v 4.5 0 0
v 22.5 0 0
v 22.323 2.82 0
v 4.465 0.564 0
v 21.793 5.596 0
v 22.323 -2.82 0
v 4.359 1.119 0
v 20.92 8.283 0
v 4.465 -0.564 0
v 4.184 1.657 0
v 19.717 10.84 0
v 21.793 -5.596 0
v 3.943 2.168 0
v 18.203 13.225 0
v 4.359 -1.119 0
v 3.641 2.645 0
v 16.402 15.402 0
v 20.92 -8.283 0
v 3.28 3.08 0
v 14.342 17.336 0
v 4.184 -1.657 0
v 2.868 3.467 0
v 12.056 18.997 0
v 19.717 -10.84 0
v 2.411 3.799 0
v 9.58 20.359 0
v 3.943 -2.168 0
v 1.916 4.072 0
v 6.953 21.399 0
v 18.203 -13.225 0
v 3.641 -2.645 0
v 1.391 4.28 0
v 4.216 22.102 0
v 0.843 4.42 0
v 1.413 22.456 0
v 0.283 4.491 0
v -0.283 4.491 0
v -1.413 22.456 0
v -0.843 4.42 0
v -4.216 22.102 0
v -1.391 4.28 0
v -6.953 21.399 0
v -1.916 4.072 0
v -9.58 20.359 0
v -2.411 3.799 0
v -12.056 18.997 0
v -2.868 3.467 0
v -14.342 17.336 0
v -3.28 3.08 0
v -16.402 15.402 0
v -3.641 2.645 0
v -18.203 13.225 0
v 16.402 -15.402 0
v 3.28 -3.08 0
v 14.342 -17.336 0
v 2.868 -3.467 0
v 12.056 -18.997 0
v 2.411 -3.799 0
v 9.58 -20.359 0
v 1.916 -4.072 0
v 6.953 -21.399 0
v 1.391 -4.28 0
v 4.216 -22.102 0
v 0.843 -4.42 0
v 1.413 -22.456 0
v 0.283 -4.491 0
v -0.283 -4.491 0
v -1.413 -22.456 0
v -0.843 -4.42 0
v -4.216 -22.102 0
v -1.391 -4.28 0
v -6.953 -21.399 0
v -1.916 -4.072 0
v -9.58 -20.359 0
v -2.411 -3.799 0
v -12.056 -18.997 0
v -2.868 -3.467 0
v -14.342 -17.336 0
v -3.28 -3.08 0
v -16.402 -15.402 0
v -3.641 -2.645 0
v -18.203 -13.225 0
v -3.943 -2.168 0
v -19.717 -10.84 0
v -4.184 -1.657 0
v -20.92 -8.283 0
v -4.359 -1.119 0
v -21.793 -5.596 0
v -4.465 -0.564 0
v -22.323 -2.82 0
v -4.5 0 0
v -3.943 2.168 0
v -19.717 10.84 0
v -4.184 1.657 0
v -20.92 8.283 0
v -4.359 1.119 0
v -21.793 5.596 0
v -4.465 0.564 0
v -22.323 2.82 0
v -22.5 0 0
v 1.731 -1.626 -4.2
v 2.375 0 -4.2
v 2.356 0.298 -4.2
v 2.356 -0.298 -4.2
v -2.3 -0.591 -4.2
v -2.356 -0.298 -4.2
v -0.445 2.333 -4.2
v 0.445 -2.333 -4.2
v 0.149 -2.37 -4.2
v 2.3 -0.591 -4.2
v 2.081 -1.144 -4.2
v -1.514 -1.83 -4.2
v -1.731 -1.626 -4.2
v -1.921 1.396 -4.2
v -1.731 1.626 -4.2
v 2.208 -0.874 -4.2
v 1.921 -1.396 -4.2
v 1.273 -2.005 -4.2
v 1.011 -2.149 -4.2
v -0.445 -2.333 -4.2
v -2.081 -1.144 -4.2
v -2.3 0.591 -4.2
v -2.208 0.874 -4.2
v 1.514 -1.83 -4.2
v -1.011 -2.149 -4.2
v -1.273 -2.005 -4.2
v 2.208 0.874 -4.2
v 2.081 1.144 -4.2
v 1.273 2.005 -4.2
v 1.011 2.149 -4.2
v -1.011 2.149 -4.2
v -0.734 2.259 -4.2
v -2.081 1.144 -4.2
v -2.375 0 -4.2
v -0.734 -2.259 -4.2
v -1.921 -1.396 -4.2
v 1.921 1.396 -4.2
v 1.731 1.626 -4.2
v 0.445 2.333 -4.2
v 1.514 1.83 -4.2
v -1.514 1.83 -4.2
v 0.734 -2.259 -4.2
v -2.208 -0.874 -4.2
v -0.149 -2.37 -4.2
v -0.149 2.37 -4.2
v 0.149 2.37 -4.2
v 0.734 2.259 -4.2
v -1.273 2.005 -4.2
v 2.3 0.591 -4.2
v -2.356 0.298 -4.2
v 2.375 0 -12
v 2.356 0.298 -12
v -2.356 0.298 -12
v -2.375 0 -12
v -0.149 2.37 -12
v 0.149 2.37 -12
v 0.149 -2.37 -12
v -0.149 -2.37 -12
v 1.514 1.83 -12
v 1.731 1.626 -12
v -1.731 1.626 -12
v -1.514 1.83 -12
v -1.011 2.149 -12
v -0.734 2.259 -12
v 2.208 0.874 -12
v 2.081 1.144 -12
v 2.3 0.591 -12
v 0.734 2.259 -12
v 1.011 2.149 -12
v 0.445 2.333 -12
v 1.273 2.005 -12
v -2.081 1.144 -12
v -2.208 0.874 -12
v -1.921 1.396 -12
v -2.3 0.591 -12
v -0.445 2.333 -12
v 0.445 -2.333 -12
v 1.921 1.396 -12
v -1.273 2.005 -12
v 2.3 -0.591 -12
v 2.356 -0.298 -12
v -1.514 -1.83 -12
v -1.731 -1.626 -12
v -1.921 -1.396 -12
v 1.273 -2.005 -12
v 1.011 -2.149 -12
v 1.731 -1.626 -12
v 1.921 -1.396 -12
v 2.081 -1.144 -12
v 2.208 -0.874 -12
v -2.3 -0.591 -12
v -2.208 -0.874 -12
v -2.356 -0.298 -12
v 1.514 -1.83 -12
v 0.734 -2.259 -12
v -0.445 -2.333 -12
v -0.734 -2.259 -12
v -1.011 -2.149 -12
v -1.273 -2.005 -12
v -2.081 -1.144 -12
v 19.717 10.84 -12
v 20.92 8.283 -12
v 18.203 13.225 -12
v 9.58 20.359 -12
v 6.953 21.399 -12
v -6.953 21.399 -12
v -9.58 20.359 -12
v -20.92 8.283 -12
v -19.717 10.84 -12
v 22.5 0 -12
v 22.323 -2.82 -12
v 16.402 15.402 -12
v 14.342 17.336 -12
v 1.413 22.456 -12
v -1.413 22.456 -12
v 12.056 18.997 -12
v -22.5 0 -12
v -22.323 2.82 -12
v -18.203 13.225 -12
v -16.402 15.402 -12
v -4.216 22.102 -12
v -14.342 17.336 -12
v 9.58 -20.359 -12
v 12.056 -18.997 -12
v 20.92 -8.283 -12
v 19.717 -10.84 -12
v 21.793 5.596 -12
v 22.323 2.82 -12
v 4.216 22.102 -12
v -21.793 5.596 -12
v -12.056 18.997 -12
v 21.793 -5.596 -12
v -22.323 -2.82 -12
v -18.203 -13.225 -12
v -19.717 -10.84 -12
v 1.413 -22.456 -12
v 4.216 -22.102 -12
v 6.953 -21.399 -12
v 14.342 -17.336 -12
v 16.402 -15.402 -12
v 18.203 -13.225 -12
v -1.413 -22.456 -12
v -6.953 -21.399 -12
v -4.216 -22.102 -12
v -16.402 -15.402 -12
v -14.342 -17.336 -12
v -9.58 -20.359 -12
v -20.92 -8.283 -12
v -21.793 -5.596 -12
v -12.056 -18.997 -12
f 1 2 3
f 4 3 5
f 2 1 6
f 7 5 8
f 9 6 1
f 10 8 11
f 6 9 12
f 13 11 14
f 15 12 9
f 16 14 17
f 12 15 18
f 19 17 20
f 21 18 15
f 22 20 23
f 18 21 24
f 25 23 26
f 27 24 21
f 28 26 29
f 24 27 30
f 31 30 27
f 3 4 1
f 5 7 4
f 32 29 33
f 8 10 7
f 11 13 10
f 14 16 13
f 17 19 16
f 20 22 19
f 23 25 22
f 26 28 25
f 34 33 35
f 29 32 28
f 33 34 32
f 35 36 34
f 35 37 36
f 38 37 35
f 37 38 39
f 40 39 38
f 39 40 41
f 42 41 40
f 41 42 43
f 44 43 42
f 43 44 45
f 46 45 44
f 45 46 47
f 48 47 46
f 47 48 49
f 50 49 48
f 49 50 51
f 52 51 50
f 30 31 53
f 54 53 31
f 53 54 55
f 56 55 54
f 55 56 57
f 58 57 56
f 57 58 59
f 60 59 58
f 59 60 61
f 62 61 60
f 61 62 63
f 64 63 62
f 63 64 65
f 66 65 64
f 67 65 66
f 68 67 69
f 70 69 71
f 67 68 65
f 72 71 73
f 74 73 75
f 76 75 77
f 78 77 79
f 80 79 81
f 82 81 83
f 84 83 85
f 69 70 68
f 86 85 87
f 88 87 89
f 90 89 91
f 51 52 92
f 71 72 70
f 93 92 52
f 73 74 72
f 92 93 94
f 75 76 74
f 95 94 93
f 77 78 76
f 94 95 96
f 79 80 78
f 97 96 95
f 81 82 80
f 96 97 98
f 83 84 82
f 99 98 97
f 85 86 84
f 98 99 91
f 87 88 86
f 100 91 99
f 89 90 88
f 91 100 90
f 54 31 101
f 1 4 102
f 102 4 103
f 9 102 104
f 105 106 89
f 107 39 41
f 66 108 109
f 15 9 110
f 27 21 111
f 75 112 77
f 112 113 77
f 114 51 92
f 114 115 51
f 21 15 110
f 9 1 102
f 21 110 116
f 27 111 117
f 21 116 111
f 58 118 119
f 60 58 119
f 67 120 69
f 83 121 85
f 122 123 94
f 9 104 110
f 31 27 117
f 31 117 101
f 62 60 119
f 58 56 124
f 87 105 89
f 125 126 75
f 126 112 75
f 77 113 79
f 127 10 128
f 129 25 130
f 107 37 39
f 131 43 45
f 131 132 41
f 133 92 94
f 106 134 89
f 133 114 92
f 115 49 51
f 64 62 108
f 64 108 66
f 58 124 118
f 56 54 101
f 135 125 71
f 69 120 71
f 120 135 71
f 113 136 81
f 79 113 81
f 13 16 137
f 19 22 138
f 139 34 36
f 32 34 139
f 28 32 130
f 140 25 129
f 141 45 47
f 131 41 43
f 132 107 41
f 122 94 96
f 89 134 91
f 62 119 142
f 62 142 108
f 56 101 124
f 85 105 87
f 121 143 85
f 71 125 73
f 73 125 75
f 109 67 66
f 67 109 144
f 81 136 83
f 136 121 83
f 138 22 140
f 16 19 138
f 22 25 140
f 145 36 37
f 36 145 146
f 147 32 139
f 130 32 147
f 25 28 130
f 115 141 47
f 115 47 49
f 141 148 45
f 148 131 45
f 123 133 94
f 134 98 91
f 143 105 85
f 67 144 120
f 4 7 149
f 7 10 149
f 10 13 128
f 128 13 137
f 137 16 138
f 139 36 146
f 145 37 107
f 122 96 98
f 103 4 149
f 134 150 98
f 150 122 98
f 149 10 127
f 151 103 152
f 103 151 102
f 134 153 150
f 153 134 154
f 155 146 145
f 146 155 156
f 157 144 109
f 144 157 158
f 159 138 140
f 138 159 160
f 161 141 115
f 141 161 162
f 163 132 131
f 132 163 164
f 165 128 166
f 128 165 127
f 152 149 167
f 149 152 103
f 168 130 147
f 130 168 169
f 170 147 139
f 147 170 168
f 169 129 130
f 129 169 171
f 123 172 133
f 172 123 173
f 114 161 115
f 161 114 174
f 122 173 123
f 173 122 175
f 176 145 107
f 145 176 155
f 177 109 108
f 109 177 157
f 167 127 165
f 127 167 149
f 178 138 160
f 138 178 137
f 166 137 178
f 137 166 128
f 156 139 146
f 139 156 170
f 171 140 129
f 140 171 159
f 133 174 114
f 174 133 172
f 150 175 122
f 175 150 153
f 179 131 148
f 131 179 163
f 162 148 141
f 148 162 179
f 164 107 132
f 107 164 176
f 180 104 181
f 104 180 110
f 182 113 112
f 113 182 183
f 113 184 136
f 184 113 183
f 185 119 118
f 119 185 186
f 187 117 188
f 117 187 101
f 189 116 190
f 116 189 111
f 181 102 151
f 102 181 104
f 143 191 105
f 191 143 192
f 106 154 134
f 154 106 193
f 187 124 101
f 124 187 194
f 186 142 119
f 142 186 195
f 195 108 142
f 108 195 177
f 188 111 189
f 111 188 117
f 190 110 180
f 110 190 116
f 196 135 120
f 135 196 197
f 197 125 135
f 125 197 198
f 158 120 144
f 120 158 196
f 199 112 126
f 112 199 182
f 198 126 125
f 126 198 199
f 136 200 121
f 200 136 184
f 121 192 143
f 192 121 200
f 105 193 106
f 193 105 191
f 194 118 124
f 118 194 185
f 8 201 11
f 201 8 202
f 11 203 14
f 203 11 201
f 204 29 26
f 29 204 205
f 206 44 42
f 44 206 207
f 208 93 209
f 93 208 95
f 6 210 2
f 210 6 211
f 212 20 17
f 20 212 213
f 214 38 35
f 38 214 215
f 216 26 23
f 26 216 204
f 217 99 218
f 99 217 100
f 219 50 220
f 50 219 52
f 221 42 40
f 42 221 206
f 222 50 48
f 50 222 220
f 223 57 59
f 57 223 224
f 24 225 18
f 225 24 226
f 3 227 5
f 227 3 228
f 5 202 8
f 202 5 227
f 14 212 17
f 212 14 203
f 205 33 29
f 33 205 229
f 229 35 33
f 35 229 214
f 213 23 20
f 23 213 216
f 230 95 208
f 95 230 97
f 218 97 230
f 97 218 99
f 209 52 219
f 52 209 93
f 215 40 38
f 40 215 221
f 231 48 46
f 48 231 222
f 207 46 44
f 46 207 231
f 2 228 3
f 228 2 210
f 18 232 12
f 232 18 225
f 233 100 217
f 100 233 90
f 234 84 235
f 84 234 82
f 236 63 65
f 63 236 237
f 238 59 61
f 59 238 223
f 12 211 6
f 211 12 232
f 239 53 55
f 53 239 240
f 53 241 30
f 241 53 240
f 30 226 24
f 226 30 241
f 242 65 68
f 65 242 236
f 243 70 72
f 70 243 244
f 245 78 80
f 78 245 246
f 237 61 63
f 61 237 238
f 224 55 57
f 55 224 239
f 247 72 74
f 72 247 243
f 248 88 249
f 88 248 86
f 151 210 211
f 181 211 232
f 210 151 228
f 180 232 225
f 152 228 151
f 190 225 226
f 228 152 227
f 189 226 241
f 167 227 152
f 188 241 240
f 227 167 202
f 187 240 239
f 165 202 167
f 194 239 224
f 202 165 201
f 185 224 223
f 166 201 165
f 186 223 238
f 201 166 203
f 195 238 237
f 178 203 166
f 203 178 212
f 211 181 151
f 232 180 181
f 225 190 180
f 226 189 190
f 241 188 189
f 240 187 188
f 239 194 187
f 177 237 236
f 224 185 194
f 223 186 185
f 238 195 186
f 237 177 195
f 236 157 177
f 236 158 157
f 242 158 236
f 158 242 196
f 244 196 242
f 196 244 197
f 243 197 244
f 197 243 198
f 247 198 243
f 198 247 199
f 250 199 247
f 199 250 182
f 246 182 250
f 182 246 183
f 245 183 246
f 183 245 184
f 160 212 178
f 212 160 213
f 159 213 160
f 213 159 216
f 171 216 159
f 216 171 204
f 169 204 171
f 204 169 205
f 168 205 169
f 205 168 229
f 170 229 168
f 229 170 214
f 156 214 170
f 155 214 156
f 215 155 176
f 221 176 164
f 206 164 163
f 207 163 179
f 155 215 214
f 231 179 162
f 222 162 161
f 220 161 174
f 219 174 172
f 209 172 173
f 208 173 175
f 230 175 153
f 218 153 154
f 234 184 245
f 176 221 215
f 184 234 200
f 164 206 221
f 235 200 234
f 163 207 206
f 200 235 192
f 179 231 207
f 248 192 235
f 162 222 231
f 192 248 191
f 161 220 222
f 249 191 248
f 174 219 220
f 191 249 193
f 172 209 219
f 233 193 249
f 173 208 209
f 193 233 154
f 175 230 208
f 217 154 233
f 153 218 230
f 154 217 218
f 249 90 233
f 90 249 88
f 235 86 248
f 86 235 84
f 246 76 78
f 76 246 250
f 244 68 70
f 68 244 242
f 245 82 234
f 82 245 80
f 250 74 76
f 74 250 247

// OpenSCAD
$fn = 50;


difference() {
	union() {
		translate(v = [0, 0, -12.0000000000]) {
			cylinder(h = 12, r = 22.5000000000);
		}
	}
	union() {
		translate(v = [0, 0, 0]) {
			rotate(a = [0, 0, 0]) {
				difference() {
					union() {
						translate(v = [0, 0, -15.0000000000]) {
							cylinder(h = 15, r = 2.2500000000);
						}
						translate(v = [0, 0, -4.2000000000]) {
							cylinder(h = 4.2000000000, r1 = 2.3750000000, r2 = 4.5000000000);
						}
						translate(v = [0, 0, -15.0000000000]) {
							cylinder(h = 15, r = 2.3750000000);
						}
						translate(v = [0, 0, -15.0000000000]) {
							cylinder(h = 15, r = 2.2500000000);
						}
					}
					union();
				}
			}
		}
	}
}
